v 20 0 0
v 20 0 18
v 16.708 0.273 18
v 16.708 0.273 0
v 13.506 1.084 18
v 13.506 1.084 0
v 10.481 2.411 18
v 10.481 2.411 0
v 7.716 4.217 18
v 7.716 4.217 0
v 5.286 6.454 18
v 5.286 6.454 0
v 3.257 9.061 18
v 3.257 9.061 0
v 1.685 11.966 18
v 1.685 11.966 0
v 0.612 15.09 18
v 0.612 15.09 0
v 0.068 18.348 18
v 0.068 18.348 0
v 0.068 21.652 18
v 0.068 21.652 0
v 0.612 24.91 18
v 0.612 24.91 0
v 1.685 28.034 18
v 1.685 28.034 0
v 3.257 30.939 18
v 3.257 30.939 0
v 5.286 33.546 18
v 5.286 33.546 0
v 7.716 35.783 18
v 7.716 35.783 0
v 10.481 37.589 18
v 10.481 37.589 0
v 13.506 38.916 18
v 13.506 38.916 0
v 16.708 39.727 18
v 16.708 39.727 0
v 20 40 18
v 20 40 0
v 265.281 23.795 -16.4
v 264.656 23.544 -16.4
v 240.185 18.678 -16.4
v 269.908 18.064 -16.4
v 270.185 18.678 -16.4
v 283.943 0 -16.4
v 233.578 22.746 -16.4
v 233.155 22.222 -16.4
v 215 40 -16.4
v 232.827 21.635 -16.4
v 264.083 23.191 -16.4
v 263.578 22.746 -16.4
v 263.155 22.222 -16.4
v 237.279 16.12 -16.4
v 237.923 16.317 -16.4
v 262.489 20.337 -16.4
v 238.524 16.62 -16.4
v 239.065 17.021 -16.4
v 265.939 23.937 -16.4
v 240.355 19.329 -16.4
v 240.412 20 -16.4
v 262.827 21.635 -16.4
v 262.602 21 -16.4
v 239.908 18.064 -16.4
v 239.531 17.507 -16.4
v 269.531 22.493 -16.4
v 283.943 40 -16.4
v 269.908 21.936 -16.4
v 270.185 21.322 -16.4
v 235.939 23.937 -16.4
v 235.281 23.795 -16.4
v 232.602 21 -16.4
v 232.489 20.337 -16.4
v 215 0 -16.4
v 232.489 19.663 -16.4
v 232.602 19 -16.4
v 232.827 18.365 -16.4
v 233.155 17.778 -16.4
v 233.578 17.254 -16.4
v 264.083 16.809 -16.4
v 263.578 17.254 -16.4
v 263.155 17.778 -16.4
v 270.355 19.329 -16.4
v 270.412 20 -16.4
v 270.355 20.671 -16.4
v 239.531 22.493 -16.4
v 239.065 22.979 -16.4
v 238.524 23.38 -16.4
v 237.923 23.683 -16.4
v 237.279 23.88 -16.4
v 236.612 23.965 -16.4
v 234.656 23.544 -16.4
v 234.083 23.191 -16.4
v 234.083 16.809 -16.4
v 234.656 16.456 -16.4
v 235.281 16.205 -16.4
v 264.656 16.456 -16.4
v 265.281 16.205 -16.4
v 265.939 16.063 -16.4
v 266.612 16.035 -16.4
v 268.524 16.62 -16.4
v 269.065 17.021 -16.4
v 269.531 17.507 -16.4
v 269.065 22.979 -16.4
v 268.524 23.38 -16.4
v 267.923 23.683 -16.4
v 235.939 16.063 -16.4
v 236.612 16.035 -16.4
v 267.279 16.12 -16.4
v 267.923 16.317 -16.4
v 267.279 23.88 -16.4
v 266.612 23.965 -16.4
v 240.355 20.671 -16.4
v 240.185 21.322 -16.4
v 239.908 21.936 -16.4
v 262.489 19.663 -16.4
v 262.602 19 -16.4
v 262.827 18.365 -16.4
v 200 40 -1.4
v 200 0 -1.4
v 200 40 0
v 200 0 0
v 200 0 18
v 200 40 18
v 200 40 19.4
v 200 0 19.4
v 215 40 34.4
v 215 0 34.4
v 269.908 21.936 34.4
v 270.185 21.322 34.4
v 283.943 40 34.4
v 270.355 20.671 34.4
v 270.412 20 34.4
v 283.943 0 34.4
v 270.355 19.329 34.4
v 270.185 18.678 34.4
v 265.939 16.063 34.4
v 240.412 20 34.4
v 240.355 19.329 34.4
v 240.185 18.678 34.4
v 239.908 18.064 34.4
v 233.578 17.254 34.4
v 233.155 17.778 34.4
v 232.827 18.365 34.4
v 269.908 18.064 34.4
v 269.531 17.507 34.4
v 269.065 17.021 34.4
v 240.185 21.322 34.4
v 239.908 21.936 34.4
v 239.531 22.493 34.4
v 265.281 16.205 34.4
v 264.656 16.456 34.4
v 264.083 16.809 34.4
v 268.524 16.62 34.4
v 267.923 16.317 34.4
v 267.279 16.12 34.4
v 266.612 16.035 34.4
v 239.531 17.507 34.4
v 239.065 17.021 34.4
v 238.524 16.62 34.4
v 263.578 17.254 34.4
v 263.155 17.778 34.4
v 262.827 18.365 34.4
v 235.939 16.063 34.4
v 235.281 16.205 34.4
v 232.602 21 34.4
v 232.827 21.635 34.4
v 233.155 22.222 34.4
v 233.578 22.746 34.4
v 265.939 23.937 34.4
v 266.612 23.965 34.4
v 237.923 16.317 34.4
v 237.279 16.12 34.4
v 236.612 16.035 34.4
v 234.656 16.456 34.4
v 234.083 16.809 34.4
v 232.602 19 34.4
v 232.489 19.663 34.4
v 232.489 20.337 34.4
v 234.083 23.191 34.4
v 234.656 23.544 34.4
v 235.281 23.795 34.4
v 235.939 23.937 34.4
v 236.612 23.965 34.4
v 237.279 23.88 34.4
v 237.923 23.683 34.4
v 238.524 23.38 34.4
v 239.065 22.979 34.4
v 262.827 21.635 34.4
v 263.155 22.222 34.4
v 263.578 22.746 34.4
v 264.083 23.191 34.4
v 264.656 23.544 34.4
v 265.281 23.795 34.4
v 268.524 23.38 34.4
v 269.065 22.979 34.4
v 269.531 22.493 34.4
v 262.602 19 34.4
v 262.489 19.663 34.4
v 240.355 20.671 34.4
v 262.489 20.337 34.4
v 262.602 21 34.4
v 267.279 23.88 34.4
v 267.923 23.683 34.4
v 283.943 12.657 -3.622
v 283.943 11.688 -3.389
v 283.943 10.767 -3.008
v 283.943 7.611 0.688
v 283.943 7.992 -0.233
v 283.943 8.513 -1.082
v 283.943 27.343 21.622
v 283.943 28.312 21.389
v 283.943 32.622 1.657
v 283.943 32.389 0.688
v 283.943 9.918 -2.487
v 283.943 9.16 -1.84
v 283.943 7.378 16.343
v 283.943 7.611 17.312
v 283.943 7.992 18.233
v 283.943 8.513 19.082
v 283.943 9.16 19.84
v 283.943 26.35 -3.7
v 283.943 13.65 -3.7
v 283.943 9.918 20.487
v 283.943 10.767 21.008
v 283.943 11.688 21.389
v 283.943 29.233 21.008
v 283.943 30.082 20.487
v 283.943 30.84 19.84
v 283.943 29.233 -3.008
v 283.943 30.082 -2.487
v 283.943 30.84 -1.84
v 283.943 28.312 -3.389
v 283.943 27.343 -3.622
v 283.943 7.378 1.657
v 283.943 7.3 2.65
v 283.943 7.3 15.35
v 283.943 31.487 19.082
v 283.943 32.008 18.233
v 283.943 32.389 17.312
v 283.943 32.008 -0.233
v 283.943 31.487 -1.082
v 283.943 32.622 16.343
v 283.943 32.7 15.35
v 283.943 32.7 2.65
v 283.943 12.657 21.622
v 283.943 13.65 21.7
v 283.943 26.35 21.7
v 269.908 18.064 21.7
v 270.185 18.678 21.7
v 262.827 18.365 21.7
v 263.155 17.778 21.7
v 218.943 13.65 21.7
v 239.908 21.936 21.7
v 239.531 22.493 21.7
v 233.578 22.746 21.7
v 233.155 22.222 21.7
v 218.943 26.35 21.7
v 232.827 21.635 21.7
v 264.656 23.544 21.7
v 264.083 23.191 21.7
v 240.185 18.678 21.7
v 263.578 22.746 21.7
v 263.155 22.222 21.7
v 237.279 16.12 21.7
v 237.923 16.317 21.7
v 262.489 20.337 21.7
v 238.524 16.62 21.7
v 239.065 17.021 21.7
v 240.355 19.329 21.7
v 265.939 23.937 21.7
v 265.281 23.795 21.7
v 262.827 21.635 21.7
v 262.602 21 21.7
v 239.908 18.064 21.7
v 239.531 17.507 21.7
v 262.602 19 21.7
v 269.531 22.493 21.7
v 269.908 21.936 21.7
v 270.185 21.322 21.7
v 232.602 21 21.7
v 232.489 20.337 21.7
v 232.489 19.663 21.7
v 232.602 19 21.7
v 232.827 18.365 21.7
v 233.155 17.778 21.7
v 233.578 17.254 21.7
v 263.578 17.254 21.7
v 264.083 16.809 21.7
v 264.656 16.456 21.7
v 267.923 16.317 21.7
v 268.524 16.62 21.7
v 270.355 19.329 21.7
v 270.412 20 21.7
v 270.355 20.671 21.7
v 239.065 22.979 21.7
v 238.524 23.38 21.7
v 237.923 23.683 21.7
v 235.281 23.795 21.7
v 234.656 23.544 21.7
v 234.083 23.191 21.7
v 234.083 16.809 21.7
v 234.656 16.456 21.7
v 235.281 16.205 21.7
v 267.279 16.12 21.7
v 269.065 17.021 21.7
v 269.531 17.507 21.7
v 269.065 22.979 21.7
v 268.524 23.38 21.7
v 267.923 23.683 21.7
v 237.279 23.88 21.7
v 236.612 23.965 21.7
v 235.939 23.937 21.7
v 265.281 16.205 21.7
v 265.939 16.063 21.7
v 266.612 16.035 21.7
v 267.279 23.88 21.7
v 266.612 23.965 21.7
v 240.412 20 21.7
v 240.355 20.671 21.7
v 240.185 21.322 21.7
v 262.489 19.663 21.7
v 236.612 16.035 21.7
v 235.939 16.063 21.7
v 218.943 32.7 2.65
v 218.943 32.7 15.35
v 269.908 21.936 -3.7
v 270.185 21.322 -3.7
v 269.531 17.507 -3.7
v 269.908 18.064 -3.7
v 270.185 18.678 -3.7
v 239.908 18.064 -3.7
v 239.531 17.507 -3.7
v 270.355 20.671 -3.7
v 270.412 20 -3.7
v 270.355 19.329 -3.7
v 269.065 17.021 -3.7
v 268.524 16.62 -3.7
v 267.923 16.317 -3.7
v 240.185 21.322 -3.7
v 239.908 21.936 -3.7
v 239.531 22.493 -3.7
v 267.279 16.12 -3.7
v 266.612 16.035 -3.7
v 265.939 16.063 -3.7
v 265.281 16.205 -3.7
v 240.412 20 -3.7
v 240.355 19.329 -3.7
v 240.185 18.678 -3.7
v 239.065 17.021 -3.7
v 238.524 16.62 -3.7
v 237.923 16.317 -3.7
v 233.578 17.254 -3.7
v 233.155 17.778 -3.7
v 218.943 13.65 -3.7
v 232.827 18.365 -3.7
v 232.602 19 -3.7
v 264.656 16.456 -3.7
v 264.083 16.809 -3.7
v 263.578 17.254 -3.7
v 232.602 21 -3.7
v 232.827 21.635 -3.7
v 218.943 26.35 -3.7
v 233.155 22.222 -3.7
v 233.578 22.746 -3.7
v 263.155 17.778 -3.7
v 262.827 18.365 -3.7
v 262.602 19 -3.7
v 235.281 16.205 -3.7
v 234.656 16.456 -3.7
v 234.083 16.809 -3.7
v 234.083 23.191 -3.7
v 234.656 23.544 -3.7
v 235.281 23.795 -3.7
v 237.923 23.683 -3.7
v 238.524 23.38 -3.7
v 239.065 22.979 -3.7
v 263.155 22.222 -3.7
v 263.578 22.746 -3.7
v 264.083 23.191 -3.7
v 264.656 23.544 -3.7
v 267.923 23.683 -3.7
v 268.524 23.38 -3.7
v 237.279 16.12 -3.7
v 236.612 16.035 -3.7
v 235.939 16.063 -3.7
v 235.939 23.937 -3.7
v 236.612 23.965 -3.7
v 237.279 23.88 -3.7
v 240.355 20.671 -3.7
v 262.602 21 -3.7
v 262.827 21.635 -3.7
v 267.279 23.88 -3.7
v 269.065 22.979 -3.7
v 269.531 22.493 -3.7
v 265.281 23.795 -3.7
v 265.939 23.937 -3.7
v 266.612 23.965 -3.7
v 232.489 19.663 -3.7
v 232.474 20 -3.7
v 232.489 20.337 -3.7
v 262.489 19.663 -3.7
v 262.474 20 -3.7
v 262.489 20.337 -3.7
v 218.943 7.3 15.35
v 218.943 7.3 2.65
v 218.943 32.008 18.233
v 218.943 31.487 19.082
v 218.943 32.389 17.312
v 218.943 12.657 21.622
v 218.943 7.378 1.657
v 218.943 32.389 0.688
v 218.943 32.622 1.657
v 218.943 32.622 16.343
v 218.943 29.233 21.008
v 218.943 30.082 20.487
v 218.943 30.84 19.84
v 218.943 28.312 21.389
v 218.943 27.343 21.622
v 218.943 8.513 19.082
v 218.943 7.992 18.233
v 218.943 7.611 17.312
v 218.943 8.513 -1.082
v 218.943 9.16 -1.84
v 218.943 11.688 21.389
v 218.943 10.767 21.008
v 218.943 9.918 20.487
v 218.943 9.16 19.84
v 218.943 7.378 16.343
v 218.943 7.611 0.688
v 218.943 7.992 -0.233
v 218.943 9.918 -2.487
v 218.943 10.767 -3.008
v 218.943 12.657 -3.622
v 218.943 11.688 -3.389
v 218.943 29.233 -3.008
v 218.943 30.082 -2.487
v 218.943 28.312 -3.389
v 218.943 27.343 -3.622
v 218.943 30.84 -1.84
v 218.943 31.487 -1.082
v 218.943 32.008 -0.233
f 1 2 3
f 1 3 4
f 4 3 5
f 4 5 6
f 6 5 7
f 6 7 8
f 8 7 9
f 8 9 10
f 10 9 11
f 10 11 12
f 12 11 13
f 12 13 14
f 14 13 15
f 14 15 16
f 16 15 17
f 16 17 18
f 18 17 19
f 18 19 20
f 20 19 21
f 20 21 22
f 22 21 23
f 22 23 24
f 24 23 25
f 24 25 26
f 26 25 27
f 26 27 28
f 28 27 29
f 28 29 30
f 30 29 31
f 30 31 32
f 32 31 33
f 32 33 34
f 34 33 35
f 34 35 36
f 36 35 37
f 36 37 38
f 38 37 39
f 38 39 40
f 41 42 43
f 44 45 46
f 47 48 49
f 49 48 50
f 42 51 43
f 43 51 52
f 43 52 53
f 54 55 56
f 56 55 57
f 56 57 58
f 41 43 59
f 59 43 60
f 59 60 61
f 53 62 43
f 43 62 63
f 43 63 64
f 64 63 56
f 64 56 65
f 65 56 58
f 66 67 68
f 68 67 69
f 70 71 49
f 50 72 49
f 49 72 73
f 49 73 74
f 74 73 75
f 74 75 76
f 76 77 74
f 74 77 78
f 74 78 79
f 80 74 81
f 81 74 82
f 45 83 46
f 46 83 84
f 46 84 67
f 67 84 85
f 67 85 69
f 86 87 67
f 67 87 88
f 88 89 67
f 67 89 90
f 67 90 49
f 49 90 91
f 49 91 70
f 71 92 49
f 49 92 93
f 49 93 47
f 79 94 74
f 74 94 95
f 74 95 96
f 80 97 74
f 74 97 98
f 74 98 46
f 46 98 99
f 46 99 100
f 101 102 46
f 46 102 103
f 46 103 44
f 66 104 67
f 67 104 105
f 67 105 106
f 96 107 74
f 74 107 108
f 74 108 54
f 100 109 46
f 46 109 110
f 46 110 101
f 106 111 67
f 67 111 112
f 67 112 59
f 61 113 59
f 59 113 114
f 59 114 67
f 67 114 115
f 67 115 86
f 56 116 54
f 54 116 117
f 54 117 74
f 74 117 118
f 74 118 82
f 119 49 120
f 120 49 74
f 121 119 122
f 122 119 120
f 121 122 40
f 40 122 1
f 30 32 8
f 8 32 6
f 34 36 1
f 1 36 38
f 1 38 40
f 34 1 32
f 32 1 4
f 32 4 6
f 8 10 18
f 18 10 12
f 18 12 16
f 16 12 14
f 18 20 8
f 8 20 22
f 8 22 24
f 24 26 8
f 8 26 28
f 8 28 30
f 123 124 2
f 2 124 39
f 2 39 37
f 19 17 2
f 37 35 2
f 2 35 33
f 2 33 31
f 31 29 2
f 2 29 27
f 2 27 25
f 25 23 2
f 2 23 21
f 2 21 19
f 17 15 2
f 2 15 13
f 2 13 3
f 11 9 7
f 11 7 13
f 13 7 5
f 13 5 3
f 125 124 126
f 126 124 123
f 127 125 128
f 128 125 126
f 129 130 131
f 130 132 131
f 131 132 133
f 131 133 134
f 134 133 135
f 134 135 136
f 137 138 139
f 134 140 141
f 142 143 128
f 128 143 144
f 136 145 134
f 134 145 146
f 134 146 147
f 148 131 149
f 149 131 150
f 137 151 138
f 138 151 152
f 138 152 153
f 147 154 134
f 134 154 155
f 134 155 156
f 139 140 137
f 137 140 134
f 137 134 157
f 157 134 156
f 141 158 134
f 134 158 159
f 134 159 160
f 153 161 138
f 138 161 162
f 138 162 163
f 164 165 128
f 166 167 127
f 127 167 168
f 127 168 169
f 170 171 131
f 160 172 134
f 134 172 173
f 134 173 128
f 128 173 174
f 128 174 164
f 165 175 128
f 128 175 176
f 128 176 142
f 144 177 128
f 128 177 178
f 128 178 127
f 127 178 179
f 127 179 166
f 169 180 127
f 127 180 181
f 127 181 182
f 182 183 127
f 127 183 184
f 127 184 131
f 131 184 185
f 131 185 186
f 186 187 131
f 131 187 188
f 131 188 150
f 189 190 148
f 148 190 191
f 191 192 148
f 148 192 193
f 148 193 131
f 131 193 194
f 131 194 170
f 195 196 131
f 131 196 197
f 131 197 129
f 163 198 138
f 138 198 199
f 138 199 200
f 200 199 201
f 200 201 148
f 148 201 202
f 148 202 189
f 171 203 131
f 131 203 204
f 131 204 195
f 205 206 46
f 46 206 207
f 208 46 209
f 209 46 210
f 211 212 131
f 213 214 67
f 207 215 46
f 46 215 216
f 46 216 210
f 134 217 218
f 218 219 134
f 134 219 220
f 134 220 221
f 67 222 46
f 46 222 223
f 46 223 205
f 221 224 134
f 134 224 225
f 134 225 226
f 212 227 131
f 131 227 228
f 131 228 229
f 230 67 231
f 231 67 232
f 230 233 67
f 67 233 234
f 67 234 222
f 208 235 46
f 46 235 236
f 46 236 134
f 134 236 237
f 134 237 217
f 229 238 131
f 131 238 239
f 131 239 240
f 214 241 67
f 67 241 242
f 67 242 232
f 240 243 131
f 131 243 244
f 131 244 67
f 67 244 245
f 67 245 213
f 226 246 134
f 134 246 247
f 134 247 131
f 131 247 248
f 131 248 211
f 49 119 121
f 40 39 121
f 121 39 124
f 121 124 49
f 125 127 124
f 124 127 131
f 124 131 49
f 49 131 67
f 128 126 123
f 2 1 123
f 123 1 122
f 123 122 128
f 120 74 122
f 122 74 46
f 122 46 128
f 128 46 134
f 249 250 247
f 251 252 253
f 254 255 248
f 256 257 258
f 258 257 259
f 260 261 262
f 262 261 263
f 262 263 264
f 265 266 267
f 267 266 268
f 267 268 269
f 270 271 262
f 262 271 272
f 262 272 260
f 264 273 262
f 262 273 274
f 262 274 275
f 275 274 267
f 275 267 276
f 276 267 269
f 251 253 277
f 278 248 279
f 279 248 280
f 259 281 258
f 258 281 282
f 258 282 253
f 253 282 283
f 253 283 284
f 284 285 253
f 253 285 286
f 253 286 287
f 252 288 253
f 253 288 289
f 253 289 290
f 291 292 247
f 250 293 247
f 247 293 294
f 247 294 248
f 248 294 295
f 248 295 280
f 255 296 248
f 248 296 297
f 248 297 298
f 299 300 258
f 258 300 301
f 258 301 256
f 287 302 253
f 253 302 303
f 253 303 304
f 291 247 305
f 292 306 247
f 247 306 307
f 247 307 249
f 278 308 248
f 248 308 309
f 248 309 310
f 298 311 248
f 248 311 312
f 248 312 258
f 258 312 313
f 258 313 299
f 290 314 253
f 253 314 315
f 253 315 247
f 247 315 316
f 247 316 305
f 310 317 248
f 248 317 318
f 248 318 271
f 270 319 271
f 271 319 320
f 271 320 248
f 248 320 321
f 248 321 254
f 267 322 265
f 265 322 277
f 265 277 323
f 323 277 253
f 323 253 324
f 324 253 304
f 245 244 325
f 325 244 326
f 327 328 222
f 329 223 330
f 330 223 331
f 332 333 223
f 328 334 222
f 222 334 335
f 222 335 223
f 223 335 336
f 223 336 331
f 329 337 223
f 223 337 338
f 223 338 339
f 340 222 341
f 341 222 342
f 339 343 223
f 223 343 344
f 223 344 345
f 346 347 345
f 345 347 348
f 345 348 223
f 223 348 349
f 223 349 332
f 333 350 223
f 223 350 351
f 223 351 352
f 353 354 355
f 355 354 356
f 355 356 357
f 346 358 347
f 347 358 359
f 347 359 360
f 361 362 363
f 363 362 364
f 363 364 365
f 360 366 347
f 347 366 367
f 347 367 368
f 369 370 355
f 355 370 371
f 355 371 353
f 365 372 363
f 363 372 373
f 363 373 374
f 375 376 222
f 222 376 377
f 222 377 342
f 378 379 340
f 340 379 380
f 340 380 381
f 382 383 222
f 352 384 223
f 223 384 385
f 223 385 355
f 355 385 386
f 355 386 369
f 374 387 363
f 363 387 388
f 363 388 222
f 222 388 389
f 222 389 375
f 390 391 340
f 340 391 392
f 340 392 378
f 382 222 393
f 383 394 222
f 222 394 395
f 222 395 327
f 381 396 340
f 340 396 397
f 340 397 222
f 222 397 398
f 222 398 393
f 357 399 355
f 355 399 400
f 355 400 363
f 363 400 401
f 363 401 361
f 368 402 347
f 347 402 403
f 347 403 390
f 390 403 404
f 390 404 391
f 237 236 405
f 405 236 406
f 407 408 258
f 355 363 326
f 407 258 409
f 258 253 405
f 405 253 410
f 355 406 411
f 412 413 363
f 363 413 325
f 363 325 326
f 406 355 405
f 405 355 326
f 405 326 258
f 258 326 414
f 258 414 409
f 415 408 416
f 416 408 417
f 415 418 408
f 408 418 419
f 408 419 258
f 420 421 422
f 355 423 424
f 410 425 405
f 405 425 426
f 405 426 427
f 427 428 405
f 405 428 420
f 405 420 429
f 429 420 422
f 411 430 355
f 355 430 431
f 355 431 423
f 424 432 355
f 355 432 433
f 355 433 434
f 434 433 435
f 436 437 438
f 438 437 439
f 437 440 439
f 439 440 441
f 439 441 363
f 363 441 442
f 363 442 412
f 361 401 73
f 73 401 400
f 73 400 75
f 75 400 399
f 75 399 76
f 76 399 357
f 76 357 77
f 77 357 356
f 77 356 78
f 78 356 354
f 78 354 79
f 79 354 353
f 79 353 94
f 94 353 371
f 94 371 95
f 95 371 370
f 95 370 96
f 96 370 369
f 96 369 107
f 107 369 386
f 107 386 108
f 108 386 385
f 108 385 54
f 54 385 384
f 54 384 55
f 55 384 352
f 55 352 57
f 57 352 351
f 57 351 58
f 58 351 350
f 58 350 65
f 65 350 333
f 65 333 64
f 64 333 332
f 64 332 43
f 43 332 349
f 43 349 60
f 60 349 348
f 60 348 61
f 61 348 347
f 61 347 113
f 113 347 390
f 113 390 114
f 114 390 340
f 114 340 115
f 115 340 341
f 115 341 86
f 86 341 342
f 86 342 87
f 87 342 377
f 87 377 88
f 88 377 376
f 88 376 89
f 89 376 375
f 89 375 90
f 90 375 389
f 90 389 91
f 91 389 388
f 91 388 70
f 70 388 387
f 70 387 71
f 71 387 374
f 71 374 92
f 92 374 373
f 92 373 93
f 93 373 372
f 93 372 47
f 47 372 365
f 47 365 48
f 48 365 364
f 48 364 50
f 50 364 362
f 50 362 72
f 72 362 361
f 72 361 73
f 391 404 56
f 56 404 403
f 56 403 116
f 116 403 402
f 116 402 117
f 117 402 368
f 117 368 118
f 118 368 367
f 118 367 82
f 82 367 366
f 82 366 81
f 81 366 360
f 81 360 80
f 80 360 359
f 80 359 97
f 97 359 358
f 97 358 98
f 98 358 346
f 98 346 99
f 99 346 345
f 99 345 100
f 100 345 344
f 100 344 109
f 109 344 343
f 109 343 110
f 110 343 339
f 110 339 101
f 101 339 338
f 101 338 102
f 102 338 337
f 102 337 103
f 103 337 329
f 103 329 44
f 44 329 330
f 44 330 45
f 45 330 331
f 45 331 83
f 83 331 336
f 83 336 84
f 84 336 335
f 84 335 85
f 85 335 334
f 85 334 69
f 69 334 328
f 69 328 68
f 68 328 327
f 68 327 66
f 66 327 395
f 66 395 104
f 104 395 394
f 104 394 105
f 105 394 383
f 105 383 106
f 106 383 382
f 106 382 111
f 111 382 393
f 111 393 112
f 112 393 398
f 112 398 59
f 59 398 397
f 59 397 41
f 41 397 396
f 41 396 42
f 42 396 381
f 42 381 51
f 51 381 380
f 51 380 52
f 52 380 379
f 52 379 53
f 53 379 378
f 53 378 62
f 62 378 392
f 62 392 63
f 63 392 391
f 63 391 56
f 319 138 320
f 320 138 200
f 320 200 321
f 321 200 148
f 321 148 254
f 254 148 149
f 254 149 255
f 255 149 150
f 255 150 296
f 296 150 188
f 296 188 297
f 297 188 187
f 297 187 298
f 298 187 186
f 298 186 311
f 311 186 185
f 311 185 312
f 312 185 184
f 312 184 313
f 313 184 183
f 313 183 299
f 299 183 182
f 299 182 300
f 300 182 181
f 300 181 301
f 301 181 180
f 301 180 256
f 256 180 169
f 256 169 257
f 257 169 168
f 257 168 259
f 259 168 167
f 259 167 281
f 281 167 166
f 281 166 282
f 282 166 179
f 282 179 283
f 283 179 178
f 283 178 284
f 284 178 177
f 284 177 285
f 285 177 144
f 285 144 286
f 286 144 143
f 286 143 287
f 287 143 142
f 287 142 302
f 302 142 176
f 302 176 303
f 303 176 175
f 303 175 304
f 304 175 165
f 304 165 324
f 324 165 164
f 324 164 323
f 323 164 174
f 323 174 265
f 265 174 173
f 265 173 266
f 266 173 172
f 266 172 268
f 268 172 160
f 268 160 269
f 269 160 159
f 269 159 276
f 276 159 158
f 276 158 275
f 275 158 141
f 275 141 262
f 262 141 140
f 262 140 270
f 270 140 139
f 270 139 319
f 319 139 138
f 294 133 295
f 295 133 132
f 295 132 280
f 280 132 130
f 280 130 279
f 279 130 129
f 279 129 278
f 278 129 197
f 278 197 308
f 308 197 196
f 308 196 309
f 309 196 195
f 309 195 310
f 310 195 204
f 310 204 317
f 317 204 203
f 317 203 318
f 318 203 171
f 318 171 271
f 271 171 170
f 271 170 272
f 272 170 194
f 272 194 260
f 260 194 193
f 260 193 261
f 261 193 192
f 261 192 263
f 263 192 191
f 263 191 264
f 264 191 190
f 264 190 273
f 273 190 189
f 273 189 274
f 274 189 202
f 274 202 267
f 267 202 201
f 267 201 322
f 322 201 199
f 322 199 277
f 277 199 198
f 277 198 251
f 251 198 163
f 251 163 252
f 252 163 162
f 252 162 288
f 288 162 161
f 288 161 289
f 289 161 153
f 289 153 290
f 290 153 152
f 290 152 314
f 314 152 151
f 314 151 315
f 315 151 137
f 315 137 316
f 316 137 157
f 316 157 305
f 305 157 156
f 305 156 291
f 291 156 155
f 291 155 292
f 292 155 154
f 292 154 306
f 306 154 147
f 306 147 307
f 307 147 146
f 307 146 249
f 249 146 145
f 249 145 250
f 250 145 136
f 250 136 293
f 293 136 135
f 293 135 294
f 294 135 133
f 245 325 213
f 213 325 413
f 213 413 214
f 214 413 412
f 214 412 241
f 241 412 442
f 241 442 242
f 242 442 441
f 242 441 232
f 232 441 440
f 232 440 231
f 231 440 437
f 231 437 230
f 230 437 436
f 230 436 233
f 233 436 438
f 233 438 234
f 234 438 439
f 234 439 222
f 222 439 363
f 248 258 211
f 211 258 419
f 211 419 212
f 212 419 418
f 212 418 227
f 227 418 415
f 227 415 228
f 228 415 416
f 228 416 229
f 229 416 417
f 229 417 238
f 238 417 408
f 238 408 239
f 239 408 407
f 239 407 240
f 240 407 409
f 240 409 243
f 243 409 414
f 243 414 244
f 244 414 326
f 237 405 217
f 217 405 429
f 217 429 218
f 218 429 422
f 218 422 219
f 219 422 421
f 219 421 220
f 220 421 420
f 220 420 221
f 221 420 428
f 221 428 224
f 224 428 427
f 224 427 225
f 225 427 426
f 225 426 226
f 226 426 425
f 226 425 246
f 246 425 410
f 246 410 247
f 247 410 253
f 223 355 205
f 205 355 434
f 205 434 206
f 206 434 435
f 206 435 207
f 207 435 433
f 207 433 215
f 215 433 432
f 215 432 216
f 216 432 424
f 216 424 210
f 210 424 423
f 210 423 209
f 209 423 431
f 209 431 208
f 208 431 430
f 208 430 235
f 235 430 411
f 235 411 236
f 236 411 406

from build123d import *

# Parameters (mm, degrees)
SALIENTE_EXTRUIR1_DEPTH = 40
REDONDEO1_RADIUS        = 20
REDONDEO1_LENGTH        = 18
CROQUIS3_W              = 25.4
CROQUIS3_H              = 25.4
CORTAR_EXTRUIR2_DEPTH   = 65
CROQUIS4_R              = 3.96875
CORTAR_EXTRUIR3_DEPTH   = 292.21181988
REDONDEO3_R             = 6.35


with BuildPart() as part:
    # Croquis1 → Saliente-Extruir1 (new body)
    with BuildSketch(Plane(origin=(0, 0, 0), x_dir=(1, 0, 0), z_dir=(0, 1, 0))):
        Polygon((283.9431, 16.4), (283.9431, -34.4), (215, -34.4), (200, -19.4), (200, -18), (0, -18), (0, 0), (200, 0), (200, 1.4), (215, 16.4), align=None)
    extrude(amount=SALIENTE_EXTRUIR1_DEPTH)

    # Redondeo1: full round fillet: the end face becomes a half cylinder, R = half its width
    redondeo1_face = Plane((0, 20, 9), x_dir=(0, 0, 1), z_dir=(-1, 0, 0))  # on the end face: x along it, z out of the body
    redondeo1_slab = redondeo1_face.offset(-REDONDEO1_RADIUS / 2) * Box(REDONDEO1_LENGTH, 2 * REDONDEO1_RADIUS, REDONDEO1_RADIUS, mode=Mode.PRIVATE)  # the body's end, R deep
    redondeo1_round = Plane((20, 20, 9), x_dir=(-1, 0, 0), z_dir=(0, 0, 1)) * Cylinder(REDONDEO1_RADIUS, REDONDEO1_LENGTH, mode=Mode.PRIVATE)  # its axis R under the face
    add(redondeo1_slab - redondeo1_round, mode=Mode.SUBTRACT)

    # Croquis3 → Cortar-Extruir2 (cut)
    with BuildSketch(Plane(origin=(283.9431, 0, 0), x_dir=(0, 0, -1), z_dir=(1, 0, 0))):
        with Locations((-9, 20)):
            Rectangle(CROQUIS3_W, CROQUIS3_H)
    extrude(amount=-CORTAR_EXTRUIR2_DEPTH, mode=Mode.SUBTRACT)

    # Croquis4 → Cortar-Extruir3 (cut, through all)
    with BuildSketch(Plane.XY.offset(34.4)):
        with Locations((266.4431, 20)):
            Circle(CROQUIS4_R)
        with Locations((236.4431, 20)):
            Circle(CROQUIS4_R)
    extrude(amount=-CORTAR_EXTRUIR3_DEPTH, mode=Mode.SUBTRACT)

    # Redondeo3
    redondeo3_edges = [part.edges().sort_by_distance(p)[0] for p in [
        (251.4431, 7.3, 21.7),
        (251.4431, 32.7, 21.7),
        (251.4431, 32.7, -3.7),
        (251.4431, 7.3, -3.7),
    ]]
    fillet(redondeo3_edges, radius=REDONDEO3_R)


solid = part.part
